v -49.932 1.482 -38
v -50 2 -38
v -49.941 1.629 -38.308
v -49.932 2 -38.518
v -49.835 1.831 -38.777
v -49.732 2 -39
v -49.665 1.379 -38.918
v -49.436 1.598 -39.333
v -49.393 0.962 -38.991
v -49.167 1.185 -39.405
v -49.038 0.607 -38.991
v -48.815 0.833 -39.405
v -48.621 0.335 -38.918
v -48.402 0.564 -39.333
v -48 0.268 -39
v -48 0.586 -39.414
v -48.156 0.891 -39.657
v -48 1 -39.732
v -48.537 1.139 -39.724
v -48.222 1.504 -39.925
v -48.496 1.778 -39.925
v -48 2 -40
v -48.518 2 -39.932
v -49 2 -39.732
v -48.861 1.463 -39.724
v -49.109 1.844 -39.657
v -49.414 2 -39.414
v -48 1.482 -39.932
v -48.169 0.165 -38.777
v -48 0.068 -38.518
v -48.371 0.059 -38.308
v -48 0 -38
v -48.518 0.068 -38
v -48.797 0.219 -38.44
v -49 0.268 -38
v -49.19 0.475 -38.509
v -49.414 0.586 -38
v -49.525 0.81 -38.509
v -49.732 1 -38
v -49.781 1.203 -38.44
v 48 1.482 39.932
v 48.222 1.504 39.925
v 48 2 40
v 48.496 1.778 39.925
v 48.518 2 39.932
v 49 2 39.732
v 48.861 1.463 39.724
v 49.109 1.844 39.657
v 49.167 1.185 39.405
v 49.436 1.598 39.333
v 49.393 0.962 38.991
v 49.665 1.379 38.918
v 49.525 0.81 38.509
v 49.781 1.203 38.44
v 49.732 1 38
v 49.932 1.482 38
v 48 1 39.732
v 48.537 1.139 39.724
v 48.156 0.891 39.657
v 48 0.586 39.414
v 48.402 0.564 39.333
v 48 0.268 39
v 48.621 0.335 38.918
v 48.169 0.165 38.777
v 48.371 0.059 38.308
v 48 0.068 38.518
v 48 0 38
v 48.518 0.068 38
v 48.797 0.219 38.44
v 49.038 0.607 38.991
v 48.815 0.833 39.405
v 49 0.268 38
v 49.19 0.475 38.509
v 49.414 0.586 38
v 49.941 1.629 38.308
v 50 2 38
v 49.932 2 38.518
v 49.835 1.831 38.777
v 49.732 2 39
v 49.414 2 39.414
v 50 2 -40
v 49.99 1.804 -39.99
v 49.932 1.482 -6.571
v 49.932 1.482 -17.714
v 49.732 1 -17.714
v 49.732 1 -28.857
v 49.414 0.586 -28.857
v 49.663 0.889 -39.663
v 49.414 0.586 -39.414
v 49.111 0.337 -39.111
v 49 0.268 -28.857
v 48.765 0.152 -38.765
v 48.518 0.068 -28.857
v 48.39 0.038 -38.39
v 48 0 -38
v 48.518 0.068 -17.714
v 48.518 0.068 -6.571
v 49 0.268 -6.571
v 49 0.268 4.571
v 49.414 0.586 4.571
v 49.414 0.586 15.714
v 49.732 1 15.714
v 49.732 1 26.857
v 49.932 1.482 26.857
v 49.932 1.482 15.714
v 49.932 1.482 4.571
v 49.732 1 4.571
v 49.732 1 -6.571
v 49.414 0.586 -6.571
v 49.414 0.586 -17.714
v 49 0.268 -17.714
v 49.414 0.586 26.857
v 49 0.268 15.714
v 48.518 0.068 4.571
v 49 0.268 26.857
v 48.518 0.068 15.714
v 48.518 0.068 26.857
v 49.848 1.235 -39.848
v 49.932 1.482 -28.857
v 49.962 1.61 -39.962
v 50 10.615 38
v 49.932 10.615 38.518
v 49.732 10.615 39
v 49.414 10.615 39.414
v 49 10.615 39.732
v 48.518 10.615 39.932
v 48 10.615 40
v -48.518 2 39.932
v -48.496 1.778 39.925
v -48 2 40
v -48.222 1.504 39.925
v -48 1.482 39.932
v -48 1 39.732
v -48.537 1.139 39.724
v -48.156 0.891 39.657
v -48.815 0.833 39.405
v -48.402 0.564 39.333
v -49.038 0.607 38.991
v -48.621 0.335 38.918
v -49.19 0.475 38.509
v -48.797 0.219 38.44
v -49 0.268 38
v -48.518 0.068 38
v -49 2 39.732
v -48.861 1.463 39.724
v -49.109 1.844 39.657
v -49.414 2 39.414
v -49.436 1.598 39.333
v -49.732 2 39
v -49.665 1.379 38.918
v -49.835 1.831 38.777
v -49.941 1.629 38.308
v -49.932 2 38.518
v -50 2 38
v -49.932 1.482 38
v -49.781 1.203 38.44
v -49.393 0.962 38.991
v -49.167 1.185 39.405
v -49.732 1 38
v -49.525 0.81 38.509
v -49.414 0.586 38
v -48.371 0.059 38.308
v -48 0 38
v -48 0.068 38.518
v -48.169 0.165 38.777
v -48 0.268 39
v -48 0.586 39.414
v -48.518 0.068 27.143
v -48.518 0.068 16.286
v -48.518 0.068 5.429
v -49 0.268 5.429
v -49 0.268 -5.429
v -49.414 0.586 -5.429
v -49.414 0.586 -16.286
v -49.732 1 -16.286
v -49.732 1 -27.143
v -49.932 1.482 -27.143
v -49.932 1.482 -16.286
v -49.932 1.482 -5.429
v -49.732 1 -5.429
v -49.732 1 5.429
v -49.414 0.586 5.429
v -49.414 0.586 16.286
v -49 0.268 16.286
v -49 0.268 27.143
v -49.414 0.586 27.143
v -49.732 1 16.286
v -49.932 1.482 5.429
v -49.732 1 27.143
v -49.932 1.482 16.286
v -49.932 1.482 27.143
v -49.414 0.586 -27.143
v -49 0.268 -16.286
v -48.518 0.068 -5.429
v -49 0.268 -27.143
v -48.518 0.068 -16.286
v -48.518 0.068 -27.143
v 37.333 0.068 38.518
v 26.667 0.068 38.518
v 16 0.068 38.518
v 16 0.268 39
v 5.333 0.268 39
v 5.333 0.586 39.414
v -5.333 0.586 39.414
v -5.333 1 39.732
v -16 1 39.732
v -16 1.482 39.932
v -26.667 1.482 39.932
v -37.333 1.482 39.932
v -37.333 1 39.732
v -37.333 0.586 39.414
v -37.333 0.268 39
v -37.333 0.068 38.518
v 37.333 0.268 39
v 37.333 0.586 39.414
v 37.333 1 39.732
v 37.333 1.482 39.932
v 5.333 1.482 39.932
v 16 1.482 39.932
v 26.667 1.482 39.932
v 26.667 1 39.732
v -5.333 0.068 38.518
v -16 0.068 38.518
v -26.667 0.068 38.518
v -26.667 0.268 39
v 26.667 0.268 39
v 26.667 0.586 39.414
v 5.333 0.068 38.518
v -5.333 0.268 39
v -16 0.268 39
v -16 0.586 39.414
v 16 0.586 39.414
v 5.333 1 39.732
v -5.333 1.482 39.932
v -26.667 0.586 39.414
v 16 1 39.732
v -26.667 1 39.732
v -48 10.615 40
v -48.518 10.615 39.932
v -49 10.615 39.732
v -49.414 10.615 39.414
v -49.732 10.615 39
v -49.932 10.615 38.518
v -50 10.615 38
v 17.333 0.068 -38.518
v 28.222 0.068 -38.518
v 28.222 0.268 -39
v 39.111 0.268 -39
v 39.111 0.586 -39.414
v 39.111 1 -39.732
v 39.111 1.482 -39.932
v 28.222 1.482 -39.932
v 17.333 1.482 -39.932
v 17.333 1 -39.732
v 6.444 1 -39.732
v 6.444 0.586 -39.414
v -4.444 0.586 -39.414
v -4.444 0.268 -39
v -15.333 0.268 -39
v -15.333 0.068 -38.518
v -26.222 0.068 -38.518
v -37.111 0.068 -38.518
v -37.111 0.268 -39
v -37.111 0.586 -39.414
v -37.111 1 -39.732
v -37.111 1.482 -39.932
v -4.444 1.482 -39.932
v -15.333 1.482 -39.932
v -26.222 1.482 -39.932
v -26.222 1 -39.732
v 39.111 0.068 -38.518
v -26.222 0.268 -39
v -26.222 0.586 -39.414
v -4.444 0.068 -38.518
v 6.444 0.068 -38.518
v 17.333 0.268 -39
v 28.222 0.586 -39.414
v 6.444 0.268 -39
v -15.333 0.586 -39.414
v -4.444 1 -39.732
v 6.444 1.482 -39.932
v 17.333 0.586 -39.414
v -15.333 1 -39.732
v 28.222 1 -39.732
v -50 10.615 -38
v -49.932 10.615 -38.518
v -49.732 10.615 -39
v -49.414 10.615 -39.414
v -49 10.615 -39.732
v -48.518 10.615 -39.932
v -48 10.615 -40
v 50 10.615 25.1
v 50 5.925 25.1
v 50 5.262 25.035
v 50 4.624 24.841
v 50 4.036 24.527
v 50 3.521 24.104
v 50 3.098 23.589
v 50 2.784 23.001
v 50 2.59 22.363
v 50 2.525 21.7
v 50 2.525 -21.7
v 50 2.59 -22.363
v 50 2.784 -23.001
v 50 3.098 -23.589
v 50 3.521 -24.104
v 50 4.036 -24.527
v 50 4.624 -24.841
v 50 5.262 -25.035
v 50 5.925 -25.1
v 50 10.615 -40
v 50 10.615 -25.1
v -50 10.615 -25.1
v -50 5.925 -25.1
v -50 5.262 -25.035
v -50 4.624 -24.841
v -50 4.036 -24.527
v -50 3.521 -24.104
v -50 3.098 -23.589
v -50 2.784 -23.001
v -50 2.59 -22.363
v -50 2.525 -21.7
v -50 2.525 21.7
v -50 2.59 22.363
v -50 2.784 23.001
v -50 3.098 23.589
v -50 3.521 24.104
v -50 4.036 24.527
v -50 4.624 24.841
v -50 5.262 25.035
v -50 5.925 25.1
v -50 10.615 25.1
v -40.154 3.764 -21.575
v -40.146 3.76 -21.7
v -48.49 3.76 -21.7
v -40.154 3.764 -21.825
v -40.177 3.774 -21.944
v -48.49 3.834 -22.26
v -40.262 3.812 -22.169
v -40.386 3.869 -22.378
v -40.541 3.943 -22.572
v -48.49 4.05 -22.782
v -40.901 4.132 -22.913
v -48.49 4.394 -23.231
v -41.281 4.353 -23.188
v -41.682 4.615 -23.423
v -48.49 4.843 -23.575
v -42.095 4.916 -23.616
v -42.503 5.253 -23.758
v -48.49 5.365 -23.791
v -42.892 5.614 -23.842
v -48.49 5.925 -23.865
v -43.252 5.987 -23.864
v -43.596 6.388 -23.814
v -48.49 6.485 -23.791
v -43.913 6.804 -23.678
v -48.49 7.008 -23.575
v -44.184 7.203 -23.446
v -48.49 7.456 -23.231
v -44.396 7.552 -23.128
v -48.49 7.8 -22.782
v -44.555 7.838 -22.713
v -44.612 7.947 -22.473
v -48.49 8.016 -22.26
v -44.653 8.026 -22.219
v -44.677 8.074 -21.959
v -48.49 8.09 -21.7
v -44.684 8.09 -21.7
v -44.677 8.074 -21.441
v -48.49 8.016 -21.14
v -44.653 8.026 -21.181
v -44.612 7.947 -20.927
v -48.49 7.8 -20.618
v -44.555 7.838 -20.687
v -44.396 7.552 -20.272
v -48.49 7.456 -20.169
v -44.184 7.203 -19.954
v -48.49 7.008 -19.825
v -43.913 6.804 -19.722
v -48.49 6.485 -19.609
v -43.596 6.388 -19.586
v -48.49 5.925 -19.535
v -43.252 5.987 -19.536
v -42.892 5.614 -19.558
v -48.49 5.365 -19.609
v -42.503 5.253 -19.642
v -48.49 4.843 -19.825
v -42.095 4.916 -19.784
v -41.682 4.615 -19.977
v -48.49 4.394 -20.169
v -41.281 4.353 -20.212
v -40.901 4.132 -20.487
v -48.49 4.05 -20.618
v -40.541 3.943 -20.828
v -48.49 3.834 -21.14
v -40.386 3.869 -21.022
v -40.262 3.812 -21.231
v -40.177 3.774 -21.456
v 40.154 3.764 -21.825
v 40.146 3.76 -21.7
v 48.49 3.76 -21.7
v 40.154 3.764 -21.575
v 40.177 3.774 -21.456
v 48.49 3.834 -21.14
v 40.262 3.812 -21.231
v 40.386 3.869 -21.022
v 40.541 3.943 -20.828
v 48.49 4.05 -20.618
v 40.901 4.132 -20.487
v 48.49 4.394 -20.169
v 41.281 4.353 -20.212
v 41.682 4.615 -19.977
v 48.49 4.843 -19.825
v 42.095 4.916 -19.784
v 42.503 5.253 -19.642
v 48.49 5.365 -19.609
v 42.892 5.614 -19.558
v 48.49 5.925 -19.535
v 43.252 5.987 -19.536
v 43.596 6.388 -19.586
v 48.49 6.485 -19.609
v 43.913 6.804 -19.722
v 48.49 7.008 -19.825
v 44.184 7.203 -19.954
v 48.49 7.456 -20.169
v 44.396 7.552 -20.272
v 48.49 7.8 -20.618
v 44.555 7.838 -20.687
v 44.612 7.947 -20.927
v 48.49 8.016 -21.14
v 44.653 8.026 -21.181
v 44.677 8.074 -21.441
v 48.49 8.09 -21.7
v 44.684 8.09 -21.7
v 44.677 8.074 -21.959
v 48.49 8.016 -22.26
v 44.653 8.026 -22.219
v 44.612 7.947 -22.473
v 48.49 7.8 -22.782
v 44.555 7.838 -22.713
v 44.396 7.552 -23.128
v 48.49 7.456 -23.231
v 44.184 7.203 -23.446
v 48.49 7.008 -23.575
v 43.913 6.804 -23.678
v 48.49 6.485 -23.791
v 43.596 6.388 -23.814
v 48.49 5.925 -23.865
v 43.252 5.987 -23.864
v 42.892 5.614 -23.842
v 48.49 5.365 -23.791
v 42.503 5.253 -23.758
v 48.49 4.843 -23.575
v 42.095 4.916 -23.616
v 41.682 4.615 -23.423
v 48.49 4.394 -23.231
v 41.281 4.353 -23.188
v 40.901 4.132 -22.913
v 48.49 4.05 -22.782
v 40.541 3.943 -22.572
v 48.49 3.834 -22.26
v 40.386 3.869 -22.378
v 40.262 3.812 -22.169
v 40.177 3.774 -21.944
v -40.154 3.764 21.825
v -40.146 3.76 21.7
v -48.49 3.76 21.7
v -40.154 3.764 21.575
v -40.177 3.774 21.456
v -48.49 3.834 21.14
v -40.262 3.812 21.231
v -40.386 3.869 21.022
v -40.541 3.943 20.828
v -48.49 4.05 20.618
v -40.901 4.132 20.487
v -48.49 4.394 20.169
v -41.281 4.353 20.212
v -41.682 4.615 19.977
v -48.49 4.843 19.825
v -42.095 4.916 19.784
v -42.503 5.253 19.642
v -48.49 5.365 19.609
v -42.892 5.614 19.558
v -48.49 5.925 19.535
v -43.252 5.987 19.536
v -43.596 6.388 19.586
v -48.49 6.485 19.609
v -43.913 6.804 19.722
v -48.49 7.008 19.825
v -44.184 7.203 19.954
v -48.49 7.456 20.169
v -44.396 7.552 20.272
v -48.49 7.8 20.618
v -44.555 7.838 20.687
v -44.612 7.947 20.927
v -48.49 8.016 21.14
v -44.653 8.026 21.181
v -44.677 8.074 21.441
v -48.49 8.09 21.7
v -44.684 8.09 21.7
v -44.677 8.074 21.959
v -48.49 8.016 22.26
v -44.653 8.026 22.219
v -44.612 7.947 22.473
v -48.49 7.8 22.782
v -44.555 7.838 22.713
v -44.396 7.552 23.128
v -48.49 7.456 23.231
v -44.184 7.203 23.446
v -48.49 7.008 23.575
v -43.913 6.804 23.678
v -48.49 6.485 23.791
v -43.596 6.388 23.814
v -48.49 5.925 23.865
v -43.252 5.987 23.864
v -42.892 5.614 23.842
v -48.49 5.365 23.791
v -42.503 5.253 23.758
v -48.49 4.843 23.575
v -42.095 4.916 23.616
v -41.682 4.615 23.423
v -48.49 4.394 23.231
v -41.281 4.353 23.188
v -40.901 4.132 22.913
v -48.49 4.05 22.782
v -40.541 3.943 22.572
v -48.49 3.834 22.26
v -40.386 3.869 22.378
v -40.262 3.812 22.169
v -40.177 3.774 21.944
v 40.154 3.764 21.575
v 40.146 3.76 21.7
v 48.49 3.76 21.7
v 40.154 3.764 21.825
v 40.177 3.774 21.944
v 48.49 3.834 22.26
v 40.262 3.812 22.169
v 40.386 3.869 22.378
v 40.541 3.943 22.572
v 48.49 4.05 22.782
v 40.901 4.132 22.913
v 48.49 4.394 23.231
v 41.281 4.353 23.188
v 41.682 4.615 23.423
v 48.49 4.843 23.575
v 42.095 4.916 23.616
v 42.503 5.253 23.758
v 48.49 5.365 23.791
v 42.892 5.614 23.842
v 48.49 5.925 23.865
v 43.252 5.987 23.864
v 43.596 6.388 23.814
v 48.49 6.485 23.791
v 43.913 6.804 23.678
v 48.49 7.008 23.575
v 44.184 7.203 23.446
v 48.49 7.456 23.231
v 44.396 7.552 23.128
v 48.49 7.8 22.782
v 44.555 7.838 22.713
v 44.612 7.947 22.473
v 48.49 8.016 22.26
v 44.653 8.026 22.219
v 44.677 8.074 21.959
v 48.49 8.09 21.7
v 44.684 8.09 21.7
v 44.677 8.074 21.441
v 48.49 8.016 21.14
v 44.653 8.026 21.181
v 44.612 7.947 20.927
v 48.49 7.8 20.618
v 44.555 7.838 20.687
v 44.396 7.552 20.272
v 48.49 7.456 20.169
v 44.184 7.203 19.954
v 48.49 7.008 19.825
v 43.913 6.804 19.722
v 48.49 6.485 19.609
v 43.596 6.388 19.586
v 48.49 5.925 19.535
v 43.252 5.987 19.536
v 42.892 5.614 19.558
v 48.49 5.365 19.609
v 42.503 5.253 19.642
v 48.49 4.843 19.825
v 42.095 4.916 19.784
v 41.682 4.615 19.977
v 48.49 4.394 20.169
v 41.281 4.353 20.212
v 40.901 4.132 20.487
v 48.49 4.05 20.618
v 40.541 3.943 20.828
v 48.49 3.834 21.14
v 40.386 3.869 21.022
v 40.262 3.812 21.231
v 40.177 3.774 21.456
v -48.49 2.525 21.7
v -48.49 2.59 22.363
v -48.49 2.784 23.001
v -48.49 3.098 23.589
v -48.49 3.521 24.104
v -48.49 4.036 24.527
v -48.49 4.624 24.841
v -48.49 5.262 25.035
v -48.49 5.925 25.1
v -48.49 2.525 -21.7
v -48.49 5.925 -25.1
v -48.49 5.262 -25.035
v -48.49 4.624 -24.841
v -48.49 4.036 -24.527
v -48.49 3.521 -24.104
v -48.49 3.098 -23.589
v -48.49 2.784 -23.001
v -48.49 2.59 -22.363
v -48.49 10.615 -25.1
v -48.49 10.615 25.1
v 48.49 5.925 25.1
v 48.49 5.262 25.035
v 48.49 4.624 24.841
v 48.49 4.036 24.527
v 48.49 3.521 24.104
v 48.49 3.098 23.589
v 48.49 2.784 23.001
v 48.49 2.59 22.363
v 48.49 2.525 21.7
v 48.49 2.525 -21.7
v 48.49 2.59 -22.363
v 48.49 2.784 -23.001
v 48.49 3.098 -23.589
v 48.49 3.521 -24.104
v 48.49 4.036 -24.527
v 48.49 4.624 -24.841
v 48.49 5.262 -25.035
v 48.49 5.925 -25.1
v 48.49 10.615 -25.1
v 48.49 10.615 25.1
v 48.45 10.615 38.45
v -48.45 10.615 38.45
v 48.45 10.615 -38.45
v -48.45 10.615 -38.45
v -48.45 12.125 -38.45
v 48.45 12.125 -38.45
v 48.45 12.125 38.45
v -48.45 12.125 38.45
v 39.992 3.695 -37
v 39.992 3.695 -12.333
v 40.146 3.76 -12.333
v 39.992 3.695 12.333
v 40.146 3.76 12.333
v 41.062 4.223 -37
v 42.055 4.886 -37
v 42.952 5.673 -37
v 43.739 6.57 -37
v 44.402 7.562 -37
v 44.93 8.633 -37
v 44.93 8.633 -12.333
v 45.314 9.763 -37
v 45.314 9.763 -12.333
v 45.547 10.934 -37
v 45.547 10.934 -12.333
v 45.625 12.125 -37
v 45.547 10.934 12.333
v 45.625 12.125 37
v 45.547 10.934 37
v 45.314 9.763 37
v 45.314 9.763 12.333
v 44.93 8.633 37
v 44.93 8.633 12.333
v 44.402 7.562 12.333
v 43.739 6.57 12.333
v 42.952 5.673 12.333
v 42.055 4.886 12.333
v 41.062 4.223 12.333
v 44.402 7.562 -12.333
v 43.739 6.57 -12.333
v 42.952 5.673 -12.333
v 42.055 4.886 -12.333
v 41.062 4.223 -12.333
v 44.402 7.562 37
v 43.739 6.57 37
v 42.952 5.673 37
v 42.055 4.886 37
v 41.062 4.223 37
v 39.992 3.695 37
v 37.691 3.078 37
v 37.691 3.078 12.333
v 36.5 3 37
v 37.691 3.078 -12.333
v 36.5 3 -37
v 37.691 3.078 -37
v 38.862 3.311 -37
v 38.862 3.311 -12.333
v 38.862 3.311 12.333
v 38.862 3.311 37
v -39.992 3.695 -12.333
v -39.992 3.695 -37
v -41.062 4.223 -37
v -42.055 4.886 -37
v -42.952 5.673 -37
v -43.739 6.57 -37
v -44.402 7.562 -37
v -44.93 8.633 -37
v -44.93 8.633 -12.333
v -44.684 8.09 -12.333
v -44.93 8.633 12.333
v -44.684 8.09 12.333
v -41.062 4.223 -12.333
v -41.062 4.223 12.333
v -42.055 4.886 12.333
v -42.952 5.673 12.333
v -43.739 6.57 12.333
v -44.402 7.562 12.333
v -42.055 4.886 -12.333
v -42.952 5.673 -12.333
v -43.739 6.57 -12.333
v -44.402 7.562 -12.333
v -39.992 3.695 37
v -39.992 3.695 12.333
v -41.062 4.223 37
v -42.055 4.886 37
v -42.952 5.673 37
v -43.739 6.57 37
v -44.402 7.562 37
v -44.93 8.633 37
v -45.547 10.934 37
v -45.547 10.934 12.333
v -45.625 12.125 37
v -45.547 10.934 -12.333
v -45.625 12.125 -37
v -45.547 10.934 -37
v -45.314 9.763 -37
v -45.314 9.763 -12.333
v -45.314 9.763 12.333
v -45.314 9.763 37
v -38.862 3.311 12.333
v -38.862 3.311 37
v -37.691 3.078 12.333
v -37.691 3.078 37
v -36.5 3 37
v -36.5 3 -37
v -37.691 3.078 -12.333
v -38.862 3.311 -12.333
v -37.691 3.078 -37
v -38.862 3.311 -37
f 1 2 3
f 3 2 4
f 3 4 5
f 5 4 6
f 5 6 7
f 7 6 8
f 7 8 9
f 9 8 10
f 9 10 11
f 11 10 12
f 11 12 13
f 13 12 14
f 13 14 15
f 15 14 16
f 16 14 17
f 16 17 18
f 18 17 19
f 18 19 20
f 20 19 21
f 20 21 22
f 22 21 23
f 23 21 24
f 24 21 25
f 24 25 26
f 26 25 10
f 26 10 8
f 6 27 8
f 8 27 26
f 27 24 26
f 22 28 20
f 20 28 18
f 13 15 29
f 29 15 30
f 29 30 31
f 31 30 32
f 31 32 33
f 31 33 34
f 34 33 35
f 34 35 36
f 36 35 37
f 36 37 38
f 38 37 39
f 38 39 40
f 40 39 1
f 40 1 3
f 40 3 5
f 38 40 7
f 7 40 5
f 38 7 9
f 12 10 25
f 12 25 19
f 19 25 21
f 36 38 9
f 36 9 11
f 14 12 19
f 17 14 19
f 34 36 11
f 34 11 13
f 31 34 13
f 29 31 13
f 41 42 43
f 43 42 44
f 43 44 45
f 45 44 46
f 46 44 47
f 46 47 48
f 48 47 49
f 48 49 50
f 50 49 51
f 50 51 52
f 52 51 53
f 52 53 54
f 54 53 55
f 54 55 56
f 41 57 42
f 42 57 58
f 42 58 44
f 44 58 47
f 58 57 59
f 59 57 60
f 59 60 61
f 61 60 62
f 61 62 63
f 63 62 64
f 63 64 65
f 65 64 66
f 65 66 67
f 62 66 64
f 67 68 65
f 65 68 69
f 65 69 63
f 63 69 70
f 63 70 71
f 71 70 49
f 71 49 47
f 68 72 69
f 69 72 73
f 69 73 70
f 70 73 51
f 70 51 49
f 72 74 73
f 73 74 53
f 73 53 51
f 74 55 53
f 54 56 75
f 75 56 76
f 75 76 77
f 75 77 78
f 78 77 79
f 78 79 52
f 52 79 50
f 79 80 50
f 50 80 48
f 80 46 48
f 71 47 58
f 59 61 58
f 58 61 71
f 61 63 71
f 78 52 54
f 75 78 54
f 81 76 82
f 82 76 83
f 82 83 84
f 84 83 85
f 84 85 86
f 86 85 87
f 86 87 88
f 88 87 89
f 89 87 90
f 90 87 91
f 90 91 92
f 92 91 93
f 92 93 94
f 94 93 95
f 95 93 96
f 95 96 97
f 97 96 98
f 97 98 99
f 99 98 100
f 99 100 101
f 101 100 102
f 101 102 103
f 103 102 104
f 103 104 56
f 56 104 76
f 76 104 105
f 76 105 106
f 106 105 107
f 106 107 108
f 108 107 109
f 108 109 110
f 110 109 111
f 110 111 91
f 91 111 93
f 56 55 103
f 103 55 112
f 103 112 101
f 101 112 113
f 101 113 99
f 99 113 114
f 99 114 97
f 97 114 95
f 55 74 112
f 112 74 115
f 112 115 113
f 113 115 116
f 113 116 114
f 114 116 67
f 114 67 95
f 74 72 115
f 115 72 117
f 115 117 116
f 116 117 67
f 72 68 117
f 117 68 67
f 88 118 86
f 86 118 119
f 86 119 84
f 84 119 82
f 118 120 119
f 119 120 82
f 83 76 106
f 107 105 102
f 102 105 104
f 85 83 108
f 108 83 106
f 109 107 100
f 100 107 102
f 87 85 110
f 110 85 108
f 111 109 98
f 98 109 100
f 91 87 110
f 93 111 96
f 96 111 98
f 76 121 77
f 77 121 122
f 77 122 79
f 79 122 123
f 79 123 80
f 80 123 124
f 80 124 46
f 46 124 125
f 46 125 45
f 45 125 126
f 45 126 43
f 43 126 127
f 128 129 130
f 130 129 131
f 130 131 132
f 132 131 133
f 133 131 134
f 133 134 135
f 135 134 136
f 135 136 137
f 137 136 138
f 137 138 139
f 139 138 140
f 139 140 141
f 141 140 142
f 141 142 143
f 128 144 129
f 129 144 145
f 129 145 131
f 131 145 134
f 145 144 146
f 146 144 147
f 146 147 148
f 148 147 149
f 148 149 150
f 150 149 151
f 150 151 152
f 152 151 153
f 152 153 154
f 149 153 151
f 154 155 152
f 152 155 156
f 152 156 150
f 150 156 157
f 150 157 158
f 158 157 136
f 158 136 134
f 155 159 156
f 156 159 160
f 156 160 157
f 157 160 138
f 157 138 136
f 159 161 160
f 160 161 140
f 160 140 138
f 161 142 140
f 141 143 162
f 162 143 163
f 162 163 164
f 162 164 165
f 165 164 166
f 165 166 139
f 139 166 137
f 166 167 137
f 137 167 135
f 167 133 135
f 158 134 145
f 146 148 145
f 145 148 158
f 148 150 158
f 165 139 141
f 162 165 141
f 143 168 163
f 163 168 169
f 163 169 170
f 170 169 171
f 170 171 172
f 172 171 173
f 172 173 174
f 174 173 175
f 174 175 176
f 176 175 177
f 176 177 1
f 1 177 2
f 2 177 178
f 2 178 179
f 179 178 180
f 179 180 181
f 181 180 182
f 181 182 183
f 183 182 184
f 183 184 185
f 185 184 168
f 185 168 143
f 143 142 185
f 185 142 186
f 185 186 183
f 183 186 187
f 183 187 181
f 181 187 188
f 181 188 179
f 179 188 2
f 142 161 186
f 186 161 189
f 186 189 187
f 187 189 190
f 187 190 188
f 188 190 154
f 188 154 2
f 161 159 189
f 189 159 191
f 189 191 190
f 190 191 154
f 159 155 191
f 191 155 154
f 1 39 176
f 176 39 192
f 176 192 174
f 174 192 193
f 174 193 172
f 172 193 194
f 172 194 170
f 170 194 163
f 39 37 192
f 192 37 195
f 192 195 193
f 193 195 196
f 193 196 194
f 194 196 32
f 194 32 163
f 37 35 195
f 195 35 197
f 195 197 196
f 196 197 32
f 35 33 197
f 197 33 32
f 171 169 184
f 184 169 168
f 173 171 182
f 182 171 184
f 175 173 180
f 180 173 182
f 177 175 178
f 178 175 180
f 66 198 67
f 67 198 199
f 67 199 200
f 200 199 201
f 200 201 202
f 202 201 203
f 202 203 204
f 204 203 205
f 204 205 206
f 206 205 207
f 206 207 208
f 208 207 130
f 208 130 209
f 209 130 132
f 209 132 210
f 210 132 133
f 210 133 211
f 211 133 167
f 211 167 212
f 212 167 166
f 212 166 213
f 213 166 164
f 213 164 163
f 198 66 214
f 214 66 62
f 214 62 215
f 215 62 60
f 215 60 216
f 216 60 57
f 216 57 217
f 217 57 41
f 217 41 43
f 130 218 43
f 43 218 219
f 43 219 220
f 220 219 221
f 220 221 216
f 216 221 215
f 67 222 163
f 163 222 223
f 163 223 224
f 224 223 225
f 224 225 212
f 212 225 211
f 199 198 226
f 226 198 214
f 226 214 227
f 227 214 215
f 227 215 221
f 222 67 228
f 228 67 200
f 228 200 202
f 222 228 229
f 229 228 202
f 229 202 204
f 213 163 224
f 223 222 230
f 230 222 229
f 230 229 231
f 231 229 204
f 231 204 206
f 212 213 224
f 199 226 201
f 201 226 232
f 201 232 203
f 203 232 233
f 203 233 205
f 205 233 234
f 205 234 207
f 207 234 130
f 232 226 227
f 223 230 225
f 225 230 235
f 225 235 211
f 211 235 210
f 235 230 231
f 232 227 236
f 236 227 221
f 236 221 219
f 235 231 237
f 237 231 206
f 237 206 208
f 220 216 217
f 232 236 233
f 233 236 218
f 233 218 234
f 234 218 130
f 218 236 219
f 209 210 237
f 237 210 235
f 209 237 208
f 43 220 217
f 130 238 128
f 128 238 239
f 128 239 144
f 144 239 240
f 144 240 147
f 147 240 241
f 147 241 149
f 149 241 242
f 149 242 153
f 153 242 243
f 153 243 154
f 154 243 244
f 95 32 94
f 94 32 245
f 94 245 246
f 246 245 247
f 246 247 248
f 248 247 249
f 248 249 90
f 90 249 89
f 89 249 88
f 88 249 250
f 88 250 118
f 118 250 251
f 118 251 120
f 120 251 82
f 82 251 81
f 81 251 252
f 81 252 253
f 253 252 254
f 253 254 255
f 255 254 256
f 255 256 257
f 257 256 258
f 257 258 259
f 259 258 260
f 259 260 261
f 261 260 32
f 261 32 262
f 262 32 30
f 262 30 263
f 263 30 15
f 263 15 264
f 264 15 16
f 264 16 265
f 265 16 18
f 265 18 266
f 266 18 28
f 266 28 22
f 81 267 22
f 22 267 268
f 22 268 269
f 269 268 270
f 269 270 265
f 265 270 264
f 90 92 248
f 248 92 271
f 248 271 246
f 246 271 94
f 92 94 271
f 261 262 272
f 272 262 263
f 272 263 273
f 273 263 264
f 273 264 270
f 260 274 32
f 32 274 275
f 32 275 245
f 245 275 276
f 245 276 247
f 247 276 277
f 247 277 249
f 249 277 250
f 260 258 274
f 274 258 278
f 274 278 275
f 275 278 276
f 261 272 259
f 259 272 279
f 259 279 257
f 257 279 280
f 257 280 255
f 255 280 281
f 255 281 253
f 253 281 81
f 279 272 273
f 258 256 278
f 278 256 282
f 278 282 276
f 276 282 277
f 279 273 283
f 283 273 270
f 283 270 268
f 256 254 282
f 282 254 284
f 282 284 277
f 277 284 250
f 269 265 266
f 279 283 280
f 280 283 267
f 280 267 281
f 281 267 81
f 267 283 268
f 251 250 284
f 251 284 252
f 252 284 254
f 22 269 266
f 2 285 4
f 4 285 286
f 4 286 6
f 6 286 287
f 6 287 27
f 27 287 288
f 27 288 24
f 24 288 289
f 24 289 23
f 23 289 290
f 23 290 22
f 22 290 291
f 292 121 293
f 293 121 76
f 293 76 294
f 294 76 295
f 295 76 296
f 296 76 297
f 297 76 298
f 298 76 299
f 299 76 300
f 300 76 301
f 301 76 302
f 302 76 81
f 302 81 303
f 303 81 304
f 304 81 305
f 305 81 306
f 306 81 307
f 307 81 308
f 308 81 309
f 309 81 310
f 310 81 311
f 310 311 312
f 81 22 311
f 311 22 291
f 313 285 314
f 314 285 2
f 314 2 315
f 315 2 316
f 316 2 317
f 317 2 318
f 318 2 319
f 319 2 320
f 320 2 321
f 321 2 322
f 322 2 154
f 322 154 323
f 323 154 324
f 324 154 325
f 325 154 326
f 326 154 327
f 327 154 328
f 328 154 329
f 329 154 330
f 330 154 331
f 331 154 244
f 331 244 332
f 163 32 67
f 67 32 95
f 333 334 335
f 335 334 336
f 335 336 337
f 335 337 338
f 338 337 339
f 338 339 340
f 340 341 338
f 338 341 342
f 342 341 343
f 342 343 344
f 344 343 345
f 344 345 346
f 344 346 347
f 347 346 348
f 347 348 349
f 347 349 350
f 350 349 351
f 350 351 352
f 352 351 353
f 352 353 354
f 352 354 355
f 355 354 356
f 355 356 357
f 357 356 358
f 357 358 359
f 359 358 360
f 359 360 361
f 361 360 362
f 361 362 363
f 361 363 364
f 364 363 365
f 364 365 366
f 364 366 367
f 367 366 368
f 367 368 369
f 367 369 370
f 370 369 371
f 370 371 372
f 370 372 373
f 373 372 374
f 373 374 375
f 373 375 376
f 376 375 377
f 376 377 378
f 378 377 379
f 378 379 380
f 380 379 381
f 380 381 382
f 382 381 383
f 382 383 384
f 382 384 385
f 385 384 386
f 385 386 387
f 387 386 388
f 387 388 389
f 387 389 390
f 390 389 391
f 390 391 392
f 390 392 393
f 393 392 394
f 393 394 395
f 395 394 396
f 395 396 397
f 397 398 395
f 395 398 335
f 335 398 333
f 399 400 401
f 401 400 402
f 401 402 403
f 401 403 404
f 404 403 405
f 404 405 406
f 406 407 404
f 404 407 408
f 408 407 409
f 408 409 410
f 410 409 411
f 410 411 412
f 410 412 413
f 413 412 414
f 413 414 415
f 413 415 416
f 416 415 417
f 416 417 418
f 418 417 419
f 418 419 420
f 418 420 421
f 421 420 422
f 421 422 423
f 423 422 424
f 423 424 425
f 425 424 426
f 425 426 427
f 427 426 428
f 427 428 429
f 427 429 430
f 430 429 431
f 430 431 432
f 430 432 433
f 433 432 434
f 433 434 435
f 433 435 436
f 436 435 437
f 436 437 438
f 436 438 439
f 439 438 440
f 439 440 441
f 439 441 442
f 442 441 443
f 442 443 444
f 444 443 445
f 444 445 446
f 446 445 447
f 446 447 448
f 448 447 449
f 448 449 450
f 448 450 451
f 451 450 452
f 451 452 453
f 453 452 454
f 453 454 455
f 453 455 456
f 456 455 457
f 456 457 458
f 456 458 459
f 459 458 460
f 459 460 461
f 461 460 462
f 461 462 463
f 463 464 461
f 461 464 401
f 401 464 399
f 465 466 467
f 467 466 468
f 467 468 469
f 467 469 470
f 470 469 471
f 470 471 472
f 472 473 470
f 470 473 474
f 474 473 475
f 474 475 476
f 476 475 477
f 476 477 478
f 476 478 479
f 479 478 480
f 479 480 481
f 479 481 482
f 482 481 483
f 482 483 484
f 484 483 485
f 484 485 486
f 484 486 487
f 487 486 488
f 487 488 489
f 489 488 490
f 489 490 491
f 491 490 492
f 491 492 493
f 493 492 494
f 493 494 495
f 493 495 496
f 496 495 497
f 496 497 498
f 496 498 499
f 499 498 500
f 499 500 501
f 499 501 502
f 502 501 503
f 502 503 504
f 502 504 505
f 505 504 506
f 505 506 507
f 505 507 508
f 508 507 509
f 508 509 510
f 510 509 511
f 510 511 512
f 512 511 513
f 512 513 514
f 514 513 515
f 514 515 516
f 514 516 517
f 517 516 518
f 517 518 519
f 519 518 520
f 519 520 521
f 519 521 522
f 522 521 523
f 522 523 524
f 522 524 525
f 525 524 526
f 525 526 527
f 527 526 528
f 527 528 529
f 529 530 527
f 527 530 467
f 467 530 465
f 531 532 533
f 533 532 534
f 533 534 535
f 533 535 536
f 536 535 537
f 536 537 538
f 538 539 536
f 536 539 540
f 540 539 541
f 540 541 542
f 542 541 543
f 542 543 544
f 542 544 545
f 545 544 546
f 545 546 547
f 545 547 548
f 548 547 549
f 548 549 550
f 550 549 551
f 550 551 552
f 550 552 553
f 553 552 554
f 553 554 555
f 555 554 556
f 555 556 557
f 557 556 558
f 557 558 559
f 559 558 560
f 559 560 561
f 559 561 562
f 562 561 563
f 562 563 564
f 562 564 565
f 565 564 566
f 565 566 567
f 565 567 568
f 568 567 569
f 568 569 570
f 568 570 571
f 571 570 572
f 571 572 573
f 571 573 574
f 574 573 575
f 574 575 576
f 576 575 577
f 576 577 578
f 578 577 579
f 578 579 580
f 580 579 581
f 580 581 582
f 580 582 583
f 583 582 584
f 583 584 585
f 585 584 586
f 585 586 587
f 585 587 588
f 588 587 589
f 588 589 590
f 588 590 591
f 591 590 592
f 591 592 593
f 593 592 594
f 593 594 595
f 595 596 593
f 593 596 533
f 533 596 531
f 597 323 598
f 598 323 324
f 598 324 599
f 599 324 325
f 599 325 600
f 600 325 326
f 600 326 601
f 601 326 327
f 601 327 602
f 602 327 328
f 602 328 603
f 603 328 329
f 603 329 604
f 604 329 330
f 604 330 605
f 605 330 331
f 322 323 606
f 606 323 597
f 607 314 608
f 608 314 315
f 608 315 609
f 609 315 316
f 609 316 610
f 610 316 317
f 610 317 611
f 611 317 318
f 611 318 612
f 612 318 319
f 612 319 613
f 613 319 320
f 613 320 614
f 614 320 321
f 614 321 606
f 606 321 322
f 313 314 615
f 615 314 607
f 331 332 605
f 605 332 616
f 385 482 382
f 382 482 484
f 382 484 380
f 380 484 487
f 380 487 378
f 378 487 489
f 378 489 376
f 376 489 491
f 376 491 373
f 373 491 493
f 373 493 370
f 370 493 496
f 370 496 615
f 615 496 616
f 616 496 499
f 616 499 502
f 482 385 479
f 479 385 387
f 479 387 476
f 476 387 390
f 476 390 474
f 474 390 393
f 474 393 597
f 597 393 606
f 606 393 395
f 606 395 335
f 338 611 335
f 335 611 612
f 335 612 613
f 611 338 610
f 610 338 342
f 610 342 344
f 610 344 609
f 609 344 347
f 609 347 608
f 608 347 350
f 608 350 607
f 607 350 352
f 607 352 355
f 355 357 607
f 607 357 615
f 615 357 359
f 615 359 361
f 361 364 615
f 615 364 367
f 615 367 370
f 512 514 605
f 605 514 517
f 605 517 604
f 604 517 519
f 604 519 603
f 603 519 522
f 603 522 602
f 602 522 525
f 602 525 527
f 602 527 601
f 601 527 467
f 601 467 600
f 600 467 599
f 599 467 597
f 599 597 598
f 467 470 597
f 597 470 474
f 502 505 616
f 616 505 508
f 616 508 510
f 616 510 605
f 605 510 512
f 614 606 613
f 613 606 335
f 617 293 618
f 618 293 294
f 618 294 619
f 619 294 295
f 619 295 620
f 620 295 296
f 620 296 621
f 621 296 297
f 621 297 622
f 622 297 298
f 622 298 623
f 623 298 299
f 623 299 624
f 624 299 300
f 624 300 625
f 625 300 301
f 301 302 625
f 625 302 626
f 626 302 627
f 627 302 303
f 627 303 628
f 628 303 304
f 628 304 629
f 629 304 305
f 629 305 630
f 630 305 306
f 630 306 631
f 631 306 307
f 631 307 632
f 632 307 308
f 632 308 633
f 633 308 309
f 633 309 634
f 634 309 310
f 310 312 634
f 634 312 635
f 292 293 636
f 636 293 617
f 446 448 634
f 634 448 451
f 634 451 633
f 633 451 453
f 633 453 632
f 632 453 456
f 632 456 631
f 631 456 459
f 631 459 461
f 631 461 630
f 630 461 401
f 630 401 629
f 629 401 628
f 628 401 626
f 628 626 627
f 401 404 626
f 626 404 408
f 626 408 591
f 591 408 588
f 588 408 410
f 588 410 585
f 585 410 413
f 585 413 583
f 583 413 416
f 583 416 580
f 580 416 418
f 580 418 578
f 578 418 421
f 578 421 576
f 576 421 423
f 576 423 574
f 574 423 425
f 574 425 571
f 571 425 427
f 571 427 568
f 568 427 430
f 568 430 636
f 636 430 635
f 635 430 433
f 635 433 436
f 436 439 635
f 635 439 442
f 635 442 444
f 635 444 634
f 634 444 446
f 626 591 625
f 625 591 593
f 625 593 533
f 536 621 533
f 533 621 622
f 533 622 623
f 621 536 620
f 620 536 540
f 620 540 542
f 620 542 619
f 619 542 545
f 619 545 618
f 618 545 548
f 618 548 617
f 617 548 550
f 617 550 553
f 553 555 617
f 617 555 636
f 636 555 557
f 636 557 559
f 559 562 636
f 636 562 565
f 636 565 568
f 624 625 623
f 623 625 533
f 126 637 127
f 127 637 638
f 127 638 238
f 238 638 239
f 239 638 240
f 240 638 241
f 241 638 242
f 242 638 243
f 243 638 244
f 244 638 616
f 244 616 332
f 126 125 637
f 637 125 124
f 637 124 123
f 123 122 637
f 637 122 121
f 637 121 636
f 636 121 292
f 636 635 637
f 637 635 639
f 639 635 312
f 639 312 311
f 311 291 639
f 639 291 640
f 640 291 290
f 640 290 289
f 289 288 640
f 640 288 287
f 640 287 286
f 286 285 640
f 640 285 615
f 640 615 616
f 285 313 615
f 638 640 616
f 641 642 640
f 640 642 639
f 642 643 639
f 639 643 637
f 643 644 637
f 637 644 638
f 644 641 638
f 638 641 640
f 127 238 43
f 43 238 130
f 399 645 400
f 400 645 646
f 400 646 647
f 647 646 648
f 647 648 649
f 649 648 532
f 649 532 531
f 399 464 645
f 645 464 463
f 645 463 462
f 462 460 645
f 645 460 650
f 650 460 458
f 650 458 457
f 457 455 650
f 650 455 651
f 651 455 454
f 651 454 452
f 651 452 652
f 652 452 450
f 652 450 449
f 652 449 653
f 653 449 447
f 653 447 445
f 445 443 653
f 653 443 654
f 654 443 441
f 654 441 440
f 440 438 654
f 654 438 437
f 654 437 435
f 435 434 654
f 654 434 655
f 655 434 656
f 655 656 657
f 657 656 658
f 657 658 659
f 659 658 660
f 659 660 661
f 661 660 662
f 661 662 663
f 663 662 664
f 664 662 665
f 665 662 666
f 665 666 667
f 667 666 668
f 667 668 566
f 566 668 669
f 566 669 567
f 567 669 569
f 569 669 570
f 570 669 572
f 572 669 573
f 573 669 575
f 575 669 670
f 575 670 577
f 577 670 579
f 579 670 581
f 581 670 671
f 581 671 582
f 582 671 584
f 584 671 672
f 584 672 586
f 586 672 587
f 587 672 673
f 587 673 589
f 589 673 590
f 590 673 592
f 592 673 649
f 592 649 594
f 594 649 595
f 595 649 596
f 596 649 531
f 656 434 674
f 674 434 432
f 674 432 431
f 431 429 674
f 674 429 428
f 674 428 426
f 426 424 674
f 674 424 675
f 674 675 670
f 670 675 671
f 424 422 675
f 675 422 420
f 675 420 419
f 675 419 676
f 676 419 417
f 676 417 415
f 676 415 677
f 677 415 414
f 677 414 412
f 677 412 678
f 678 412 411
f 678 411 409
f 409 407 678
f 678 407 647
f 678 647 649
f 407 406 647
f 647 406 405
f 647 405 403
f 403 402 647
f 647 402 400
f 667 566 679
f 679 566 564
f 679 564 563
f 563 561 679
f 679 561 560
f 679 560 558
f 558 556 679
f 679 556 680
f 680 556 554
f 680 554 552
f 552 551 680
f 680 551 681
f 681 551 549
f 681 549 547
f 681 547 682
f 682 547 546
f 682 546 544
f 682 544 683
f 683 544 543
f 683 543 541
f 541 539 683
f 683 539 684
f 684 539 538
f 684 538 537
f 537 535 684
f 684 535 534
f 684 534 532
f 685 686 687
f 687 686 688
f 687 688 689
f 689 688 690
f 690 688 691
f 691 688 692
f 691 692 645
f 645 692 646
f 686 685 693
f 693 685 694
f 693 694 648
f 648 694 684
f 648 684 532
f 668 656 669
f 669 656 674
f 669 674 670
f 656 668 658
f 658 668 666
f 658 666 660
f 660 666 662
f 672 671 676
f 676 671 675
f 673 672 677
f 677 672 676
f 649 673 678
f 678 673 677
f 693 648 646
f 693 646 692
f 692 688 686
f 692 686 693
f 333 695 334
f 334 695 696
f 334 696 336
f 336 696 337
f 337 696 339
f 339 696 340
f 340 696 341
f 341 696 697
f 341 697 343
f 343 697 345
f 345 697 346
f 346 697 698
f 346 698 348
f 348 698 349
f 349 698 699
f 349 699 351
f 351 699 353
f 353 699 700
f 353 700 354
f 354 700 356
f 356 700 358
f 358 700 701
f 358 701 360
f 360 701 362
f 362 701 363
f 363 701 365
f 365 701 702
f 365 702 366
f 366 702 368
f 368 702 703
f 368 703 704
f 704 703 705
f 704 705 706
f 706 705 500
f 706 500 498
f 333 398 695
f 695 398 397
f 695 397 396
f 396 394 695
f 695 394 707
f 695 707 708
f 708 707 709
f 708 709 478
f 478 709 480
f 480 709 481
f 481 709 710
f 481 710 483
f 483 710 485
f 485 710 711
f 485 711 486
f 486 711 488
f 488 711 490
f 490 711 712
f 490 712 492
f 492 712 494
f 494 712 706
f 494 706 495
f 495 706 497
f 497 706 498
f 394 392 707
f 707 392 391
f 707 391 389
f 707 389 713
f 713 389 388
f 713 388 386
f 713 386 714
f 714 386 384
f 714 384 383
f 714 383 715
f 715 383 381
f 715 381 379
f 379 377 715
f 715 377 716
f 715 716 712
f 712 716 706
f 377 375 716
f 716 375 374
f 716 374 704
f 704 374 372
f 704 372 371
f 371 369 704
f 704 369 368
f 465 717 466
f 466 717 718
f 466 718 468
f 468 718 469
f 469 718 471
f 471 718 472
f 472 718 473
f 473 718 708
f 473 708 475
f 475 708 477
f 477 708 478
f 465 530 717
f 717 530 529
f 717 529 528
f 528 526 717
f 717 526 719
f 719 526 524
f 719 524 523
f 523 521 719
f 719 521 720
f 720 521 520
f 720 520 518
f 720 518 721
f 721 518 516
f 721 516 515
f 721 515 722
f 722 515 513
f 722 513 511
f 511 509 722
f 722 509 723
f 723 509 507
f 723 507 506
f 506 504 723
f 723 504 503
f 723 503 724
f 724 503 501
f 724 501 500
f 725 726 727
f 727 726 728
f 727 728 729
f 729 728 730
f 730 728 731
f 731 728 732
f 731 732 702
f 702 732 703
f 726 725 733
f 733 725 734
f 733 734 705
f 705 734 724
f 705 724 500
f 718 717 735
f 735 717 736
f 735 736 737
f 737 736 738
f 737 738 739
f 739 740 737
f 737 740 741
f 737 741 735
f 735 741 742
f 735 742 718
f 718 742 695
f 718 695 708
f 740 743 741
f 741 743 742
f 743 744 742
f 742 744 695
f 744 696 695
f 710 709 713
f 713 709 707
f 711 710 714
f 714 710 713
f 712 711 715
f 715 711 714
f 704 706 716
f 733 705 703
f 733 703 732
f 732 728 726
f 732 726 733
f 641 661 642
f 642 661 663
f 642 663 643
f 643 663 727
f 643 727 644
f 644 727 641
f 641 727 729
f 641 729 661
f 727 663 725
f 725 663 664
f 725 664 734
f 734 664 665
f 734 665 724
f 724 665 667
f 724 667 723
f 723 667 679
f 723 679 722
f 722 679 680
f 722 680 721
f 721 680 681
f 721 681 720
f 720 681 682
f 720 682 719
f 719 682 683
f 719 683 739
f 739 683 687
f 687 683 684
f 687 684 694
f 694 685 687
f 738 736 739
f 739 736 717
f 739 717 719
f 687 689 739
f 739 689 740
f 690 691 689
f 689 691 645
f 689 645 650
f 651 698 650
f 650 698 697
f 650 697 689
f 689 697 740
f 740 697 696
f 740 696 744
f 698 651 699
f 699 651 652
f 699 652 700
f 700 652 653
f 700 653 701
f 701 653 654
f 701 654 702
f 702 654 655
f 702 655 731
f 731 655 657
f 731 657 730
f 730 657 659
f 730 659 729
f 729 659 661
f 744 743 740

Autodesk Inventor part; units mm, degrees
ref_plane "YZ Plane" through (0, 0, 0) normal (1, 0, 0) x (0, 1, 0)
ref_plane "XZ Plane" through (0, 0, 0) normal (0, 1, 0) x (-1, 0, 0)
ref_plane "XY Plane" through (0, 0, 0) normal (0, 0, 1) x (1, 0, 0)
sketch "草圖1" plane through (0, 0, 0) normal (0, 1, 0) x (-1, 0, 0)
  line L0 (50, 40) -> (-50, 40)
  line L1 (-50, 40) -> (-50, -40)
  line L2 (-50, -40) -> (50, -40)
  line L3 (50, -40) -> (50, 40)
  line L4 (50, 40) -> (-50, -40) construction
  line L5 (-50, 40) -> (50, -40) construction
  point P0 (0, 0)
  dimension "d0" = 100
  dimension "d1" = 80
extrude "擠出1" add sketch "草圖1" along normal blind 3
sketch "草圖2" plane through (0, 3, 0) normal (0, 1, 0) x (1, 0, 0)
  line L0 (50, -40) -> (50, 40) projected
  line L1 (50, 40) -> (-50, 40) projected
  line L2 (-50, 40) -> (-50, -40) projected
  line L3 (-50, -40) -> (50, -40) projected
  line L4 (-47, -37) -> (-47, 37)
  line L5 (-47, 37) -> (47, 37)
  line L6 (47, 37) -> (47, -37)
  line L7 (47, -37) -> (-47, -37)
  point P0 (0, 0)
  dimension "d4" = 3
extrude "擠出2" add sketch "草圖2" along normal blind 9.125
sketch "草圖3" plane through (-47, 3, -37) normal (0, 0, 1) x (1, 0, 0)
  line L0 (94, 0) -> (0, 0) projected
  line L1 (94, 0) -> (94, 9.125) projected
  line L2 (0, 9.125) -> (94, 9.125) projected
  line L3 (0, 0) -> (0, 9.125) projected
  circle A0 centre (10.5, 9.125) radius 9.125
  circle A1 centre (28.75, 9.125) radius 9.125
  circle A2 centre (47, 9.125) radius 9.125
  circle A3 centre (65.25, 9.125) radius 9.125
  circle A4 centre (83.5, 9.125) radius 9.125
  point P0 (47, -3)
  point P1 (92.625, 9.125)
  point P2 (83.5, 0)
  point P3 (10.5, 0)
  point P4 (1.375, 9.125)
  dimension "d7" = 18.25
  dimension "d11" = 18.25
  dimension "d16" = 10.5
extrude "擠出3" add sketch "草圖3" along normal through all contours L0 A4 L2 L1 | L0 L3 L2 A0
sketch "草圖4" plane through (0, 12.125, 0) normal (0, 1, 0) x (1, 0, 0)
  line L0 (-50, -40) -> (50, -40) projected
  line L1 (50, -40) -> (50, 40) projected
  line L2 (50, 40) -> (-50, 40) projected
  line L3 (-50, 40) -> (-50, -40) projected
  line L4 (45.625, -37) -> (-45.625, -37) projected
  line L5 (-45.625, 37) -> (-45.625, -37) projected
  line L6 (-45.625, 37) -> (45.625, 37) projected
  line L7 (45.625, 37) -> (45.625, -37) projected
  line L8 (48.5, -38.5) -> (-48.5, -38.5)
  line L9 (-48.5, -38.5) -> (-48.5, 38.5)
  line L10 (-48.5, 38.5) -> (48.5, 38.5)
  line L11 (48.5, 38.5) -> (48.5, -38.5)
  line L12 (-48.45, -38.45) -> (48.45, -38.45)
  line L13 (48.45, -38.45) -> (48.45, 38.45)
  line L14 (48.45, 38.45) -> (-48.45, 38.45)
  line L15 (-48.45, 38.45) -> (-48.45, -38.45)
  point P0 (0, 0)
  dimension "d19" = 1.5
  dimension "d20" = 0.05
extrude "擠出4" cut sketch "草圖4" against normal blind 1.51 contours L3 L2 L1 L0 | L8 L9 L10 L11
sketch "草圖5" plane through (50, 0, 40) normal (1, 0, 0) x (0, 0, -1)
  circle A0 centre (18.3, 5.925) radius 1.65 projected
  circle A1 centre (61.7, 5.925) radius 1.65 projected
  line L0 (28.79, 21.325) -> (15, 21.325) projected
  line L1 (15, 21.325) -> (15, 27.625) projected
  line L2 (15, 27.625) -> (28.79, 27.625) projected
  line L3 (28.79, 27.625) -> (28.79, 21.325) projected
  line L4 (51.21, 21.325) -> (51.21, 27.625) projected
  line L5 (51.21, 27.625) -> (65, 27.625) projected
  line L6 (65, 27.625) -> (65, 21.325) projected
  line L7 (65, 21.325) -> (51.21, 21.325) projected
  line L8 (15, 10.625) -> (2, 10.625) projected
  line L9 (15, 10.625) -> (15, 5.925) projected
  arc A2 (15, 5.925) -> (18.3, 2.625) centre (18.3, 5.925) ccw projected
  line L10 (18.3, 2.625) -> (61.7, 2.625) projected
  arc A3 (61.7, 2.625) -> (65, 5.925) centre (61.7, 5.925) ccw projected
  line L11 (65, 5.925) -> (65, 10.625) projected
  line L12 (78, 10.625) -> (65, 10.625) projected
  line L13 (15, 10.625) -> (65, 10.625)
  line L14 (80, 10.615) -> (0, 10.615) projected
  arc A4 (14.9, 5.925) -> (18.3, 2.525) centre (18.3, 5.925) ccw
  line L15 (14.9, 5.925) -> (14.9, 10.525)
  line L16 (14.9, 10.525) -> (-0.1, 10.525)
  line L17 (-0.1, 10.525) -> (-0.1, 30.725)
  line L18 (-0.1, 30.725) -> (80.1, 30.725)
  line L19 (80.1, 30.725) -> (80.1, 10.525)
  line L20 (80.1, 10.525) -> (65.1, 10.525)
  line L21 (65.1, 10.525) -> (65.1, 5.925)
  arc A5 (61.7, 2.525) -> (65.1, 5.925) centre (61.7, 5.925) ccw
  line L22 (61.7, 2.525) -> (18.3, 2.525)
  line L23 (14.9, 10.525) -> (14.9, 10.615)
  line L24 (65.1, 10.525) -> (65.1, 10.615)
  line L25 (78, 28.625) -> (78, 10.625) projected
  line L26 (2, 10.625) -> (2, 28.625) projected
  line L27 (46.57, 28.625) -> (46.57, 21.325) projected
  line L28 (46.57, 21.325) -> (33.43, 21.325) projected
  line L29 (33.43, 21.325) -> (33.43, 28.625) projected
  line L30 (46.57, 28.625) -> (78, 28.625) projected
  line L31 (2, 28.625) -> (33.43, 28.625) projected
  point P0 (40, 0)
  dimension "d23" = 0.1
extrude "擠出5" cut sketch "草圖5" against normal blind 1.51 contours A0 | A1 | L14 L11 A3 L10 A2 L9 | L9 A2 L10 A3 L11 L14 L24 L21 A5 L22 A4 L15 L23
mirror "鏡射1" about plane through (0, 0, 0) normal (1, 0, 0) of "擠出5"
sketch "草圖6" plane through (48.49, 0, 40) normal (1, 0, 0) x (0, 0, -1)
  circle A0 centre (18.3, 5.925) radius 1.65 projected
  circle A1 centre (61.7, 5.925) radius 1.65 projected
  circle A2 centre (18.3, 5.925) radius 2.165
  circle A3 centre (61.7, 5.925) radius 2.165
  point P0 (40, 0)
  dimension "d26" = 4.33
  dimension "d27" = 4.33
extrude "擠出6" cut sketch "草圖6" against normal through all contours A0 | A1 | A2 | A3
fillet "圓角1" radius 2 7 edges at (-50, 5.3075, 40) (0, 0, 40) (50, 5.3075, 40) (50, 0, 0) (0, 0, -40) (-50, 0, 0) (-50, 5.3075, -40)
properties part number "buttom case_3D 列印"
